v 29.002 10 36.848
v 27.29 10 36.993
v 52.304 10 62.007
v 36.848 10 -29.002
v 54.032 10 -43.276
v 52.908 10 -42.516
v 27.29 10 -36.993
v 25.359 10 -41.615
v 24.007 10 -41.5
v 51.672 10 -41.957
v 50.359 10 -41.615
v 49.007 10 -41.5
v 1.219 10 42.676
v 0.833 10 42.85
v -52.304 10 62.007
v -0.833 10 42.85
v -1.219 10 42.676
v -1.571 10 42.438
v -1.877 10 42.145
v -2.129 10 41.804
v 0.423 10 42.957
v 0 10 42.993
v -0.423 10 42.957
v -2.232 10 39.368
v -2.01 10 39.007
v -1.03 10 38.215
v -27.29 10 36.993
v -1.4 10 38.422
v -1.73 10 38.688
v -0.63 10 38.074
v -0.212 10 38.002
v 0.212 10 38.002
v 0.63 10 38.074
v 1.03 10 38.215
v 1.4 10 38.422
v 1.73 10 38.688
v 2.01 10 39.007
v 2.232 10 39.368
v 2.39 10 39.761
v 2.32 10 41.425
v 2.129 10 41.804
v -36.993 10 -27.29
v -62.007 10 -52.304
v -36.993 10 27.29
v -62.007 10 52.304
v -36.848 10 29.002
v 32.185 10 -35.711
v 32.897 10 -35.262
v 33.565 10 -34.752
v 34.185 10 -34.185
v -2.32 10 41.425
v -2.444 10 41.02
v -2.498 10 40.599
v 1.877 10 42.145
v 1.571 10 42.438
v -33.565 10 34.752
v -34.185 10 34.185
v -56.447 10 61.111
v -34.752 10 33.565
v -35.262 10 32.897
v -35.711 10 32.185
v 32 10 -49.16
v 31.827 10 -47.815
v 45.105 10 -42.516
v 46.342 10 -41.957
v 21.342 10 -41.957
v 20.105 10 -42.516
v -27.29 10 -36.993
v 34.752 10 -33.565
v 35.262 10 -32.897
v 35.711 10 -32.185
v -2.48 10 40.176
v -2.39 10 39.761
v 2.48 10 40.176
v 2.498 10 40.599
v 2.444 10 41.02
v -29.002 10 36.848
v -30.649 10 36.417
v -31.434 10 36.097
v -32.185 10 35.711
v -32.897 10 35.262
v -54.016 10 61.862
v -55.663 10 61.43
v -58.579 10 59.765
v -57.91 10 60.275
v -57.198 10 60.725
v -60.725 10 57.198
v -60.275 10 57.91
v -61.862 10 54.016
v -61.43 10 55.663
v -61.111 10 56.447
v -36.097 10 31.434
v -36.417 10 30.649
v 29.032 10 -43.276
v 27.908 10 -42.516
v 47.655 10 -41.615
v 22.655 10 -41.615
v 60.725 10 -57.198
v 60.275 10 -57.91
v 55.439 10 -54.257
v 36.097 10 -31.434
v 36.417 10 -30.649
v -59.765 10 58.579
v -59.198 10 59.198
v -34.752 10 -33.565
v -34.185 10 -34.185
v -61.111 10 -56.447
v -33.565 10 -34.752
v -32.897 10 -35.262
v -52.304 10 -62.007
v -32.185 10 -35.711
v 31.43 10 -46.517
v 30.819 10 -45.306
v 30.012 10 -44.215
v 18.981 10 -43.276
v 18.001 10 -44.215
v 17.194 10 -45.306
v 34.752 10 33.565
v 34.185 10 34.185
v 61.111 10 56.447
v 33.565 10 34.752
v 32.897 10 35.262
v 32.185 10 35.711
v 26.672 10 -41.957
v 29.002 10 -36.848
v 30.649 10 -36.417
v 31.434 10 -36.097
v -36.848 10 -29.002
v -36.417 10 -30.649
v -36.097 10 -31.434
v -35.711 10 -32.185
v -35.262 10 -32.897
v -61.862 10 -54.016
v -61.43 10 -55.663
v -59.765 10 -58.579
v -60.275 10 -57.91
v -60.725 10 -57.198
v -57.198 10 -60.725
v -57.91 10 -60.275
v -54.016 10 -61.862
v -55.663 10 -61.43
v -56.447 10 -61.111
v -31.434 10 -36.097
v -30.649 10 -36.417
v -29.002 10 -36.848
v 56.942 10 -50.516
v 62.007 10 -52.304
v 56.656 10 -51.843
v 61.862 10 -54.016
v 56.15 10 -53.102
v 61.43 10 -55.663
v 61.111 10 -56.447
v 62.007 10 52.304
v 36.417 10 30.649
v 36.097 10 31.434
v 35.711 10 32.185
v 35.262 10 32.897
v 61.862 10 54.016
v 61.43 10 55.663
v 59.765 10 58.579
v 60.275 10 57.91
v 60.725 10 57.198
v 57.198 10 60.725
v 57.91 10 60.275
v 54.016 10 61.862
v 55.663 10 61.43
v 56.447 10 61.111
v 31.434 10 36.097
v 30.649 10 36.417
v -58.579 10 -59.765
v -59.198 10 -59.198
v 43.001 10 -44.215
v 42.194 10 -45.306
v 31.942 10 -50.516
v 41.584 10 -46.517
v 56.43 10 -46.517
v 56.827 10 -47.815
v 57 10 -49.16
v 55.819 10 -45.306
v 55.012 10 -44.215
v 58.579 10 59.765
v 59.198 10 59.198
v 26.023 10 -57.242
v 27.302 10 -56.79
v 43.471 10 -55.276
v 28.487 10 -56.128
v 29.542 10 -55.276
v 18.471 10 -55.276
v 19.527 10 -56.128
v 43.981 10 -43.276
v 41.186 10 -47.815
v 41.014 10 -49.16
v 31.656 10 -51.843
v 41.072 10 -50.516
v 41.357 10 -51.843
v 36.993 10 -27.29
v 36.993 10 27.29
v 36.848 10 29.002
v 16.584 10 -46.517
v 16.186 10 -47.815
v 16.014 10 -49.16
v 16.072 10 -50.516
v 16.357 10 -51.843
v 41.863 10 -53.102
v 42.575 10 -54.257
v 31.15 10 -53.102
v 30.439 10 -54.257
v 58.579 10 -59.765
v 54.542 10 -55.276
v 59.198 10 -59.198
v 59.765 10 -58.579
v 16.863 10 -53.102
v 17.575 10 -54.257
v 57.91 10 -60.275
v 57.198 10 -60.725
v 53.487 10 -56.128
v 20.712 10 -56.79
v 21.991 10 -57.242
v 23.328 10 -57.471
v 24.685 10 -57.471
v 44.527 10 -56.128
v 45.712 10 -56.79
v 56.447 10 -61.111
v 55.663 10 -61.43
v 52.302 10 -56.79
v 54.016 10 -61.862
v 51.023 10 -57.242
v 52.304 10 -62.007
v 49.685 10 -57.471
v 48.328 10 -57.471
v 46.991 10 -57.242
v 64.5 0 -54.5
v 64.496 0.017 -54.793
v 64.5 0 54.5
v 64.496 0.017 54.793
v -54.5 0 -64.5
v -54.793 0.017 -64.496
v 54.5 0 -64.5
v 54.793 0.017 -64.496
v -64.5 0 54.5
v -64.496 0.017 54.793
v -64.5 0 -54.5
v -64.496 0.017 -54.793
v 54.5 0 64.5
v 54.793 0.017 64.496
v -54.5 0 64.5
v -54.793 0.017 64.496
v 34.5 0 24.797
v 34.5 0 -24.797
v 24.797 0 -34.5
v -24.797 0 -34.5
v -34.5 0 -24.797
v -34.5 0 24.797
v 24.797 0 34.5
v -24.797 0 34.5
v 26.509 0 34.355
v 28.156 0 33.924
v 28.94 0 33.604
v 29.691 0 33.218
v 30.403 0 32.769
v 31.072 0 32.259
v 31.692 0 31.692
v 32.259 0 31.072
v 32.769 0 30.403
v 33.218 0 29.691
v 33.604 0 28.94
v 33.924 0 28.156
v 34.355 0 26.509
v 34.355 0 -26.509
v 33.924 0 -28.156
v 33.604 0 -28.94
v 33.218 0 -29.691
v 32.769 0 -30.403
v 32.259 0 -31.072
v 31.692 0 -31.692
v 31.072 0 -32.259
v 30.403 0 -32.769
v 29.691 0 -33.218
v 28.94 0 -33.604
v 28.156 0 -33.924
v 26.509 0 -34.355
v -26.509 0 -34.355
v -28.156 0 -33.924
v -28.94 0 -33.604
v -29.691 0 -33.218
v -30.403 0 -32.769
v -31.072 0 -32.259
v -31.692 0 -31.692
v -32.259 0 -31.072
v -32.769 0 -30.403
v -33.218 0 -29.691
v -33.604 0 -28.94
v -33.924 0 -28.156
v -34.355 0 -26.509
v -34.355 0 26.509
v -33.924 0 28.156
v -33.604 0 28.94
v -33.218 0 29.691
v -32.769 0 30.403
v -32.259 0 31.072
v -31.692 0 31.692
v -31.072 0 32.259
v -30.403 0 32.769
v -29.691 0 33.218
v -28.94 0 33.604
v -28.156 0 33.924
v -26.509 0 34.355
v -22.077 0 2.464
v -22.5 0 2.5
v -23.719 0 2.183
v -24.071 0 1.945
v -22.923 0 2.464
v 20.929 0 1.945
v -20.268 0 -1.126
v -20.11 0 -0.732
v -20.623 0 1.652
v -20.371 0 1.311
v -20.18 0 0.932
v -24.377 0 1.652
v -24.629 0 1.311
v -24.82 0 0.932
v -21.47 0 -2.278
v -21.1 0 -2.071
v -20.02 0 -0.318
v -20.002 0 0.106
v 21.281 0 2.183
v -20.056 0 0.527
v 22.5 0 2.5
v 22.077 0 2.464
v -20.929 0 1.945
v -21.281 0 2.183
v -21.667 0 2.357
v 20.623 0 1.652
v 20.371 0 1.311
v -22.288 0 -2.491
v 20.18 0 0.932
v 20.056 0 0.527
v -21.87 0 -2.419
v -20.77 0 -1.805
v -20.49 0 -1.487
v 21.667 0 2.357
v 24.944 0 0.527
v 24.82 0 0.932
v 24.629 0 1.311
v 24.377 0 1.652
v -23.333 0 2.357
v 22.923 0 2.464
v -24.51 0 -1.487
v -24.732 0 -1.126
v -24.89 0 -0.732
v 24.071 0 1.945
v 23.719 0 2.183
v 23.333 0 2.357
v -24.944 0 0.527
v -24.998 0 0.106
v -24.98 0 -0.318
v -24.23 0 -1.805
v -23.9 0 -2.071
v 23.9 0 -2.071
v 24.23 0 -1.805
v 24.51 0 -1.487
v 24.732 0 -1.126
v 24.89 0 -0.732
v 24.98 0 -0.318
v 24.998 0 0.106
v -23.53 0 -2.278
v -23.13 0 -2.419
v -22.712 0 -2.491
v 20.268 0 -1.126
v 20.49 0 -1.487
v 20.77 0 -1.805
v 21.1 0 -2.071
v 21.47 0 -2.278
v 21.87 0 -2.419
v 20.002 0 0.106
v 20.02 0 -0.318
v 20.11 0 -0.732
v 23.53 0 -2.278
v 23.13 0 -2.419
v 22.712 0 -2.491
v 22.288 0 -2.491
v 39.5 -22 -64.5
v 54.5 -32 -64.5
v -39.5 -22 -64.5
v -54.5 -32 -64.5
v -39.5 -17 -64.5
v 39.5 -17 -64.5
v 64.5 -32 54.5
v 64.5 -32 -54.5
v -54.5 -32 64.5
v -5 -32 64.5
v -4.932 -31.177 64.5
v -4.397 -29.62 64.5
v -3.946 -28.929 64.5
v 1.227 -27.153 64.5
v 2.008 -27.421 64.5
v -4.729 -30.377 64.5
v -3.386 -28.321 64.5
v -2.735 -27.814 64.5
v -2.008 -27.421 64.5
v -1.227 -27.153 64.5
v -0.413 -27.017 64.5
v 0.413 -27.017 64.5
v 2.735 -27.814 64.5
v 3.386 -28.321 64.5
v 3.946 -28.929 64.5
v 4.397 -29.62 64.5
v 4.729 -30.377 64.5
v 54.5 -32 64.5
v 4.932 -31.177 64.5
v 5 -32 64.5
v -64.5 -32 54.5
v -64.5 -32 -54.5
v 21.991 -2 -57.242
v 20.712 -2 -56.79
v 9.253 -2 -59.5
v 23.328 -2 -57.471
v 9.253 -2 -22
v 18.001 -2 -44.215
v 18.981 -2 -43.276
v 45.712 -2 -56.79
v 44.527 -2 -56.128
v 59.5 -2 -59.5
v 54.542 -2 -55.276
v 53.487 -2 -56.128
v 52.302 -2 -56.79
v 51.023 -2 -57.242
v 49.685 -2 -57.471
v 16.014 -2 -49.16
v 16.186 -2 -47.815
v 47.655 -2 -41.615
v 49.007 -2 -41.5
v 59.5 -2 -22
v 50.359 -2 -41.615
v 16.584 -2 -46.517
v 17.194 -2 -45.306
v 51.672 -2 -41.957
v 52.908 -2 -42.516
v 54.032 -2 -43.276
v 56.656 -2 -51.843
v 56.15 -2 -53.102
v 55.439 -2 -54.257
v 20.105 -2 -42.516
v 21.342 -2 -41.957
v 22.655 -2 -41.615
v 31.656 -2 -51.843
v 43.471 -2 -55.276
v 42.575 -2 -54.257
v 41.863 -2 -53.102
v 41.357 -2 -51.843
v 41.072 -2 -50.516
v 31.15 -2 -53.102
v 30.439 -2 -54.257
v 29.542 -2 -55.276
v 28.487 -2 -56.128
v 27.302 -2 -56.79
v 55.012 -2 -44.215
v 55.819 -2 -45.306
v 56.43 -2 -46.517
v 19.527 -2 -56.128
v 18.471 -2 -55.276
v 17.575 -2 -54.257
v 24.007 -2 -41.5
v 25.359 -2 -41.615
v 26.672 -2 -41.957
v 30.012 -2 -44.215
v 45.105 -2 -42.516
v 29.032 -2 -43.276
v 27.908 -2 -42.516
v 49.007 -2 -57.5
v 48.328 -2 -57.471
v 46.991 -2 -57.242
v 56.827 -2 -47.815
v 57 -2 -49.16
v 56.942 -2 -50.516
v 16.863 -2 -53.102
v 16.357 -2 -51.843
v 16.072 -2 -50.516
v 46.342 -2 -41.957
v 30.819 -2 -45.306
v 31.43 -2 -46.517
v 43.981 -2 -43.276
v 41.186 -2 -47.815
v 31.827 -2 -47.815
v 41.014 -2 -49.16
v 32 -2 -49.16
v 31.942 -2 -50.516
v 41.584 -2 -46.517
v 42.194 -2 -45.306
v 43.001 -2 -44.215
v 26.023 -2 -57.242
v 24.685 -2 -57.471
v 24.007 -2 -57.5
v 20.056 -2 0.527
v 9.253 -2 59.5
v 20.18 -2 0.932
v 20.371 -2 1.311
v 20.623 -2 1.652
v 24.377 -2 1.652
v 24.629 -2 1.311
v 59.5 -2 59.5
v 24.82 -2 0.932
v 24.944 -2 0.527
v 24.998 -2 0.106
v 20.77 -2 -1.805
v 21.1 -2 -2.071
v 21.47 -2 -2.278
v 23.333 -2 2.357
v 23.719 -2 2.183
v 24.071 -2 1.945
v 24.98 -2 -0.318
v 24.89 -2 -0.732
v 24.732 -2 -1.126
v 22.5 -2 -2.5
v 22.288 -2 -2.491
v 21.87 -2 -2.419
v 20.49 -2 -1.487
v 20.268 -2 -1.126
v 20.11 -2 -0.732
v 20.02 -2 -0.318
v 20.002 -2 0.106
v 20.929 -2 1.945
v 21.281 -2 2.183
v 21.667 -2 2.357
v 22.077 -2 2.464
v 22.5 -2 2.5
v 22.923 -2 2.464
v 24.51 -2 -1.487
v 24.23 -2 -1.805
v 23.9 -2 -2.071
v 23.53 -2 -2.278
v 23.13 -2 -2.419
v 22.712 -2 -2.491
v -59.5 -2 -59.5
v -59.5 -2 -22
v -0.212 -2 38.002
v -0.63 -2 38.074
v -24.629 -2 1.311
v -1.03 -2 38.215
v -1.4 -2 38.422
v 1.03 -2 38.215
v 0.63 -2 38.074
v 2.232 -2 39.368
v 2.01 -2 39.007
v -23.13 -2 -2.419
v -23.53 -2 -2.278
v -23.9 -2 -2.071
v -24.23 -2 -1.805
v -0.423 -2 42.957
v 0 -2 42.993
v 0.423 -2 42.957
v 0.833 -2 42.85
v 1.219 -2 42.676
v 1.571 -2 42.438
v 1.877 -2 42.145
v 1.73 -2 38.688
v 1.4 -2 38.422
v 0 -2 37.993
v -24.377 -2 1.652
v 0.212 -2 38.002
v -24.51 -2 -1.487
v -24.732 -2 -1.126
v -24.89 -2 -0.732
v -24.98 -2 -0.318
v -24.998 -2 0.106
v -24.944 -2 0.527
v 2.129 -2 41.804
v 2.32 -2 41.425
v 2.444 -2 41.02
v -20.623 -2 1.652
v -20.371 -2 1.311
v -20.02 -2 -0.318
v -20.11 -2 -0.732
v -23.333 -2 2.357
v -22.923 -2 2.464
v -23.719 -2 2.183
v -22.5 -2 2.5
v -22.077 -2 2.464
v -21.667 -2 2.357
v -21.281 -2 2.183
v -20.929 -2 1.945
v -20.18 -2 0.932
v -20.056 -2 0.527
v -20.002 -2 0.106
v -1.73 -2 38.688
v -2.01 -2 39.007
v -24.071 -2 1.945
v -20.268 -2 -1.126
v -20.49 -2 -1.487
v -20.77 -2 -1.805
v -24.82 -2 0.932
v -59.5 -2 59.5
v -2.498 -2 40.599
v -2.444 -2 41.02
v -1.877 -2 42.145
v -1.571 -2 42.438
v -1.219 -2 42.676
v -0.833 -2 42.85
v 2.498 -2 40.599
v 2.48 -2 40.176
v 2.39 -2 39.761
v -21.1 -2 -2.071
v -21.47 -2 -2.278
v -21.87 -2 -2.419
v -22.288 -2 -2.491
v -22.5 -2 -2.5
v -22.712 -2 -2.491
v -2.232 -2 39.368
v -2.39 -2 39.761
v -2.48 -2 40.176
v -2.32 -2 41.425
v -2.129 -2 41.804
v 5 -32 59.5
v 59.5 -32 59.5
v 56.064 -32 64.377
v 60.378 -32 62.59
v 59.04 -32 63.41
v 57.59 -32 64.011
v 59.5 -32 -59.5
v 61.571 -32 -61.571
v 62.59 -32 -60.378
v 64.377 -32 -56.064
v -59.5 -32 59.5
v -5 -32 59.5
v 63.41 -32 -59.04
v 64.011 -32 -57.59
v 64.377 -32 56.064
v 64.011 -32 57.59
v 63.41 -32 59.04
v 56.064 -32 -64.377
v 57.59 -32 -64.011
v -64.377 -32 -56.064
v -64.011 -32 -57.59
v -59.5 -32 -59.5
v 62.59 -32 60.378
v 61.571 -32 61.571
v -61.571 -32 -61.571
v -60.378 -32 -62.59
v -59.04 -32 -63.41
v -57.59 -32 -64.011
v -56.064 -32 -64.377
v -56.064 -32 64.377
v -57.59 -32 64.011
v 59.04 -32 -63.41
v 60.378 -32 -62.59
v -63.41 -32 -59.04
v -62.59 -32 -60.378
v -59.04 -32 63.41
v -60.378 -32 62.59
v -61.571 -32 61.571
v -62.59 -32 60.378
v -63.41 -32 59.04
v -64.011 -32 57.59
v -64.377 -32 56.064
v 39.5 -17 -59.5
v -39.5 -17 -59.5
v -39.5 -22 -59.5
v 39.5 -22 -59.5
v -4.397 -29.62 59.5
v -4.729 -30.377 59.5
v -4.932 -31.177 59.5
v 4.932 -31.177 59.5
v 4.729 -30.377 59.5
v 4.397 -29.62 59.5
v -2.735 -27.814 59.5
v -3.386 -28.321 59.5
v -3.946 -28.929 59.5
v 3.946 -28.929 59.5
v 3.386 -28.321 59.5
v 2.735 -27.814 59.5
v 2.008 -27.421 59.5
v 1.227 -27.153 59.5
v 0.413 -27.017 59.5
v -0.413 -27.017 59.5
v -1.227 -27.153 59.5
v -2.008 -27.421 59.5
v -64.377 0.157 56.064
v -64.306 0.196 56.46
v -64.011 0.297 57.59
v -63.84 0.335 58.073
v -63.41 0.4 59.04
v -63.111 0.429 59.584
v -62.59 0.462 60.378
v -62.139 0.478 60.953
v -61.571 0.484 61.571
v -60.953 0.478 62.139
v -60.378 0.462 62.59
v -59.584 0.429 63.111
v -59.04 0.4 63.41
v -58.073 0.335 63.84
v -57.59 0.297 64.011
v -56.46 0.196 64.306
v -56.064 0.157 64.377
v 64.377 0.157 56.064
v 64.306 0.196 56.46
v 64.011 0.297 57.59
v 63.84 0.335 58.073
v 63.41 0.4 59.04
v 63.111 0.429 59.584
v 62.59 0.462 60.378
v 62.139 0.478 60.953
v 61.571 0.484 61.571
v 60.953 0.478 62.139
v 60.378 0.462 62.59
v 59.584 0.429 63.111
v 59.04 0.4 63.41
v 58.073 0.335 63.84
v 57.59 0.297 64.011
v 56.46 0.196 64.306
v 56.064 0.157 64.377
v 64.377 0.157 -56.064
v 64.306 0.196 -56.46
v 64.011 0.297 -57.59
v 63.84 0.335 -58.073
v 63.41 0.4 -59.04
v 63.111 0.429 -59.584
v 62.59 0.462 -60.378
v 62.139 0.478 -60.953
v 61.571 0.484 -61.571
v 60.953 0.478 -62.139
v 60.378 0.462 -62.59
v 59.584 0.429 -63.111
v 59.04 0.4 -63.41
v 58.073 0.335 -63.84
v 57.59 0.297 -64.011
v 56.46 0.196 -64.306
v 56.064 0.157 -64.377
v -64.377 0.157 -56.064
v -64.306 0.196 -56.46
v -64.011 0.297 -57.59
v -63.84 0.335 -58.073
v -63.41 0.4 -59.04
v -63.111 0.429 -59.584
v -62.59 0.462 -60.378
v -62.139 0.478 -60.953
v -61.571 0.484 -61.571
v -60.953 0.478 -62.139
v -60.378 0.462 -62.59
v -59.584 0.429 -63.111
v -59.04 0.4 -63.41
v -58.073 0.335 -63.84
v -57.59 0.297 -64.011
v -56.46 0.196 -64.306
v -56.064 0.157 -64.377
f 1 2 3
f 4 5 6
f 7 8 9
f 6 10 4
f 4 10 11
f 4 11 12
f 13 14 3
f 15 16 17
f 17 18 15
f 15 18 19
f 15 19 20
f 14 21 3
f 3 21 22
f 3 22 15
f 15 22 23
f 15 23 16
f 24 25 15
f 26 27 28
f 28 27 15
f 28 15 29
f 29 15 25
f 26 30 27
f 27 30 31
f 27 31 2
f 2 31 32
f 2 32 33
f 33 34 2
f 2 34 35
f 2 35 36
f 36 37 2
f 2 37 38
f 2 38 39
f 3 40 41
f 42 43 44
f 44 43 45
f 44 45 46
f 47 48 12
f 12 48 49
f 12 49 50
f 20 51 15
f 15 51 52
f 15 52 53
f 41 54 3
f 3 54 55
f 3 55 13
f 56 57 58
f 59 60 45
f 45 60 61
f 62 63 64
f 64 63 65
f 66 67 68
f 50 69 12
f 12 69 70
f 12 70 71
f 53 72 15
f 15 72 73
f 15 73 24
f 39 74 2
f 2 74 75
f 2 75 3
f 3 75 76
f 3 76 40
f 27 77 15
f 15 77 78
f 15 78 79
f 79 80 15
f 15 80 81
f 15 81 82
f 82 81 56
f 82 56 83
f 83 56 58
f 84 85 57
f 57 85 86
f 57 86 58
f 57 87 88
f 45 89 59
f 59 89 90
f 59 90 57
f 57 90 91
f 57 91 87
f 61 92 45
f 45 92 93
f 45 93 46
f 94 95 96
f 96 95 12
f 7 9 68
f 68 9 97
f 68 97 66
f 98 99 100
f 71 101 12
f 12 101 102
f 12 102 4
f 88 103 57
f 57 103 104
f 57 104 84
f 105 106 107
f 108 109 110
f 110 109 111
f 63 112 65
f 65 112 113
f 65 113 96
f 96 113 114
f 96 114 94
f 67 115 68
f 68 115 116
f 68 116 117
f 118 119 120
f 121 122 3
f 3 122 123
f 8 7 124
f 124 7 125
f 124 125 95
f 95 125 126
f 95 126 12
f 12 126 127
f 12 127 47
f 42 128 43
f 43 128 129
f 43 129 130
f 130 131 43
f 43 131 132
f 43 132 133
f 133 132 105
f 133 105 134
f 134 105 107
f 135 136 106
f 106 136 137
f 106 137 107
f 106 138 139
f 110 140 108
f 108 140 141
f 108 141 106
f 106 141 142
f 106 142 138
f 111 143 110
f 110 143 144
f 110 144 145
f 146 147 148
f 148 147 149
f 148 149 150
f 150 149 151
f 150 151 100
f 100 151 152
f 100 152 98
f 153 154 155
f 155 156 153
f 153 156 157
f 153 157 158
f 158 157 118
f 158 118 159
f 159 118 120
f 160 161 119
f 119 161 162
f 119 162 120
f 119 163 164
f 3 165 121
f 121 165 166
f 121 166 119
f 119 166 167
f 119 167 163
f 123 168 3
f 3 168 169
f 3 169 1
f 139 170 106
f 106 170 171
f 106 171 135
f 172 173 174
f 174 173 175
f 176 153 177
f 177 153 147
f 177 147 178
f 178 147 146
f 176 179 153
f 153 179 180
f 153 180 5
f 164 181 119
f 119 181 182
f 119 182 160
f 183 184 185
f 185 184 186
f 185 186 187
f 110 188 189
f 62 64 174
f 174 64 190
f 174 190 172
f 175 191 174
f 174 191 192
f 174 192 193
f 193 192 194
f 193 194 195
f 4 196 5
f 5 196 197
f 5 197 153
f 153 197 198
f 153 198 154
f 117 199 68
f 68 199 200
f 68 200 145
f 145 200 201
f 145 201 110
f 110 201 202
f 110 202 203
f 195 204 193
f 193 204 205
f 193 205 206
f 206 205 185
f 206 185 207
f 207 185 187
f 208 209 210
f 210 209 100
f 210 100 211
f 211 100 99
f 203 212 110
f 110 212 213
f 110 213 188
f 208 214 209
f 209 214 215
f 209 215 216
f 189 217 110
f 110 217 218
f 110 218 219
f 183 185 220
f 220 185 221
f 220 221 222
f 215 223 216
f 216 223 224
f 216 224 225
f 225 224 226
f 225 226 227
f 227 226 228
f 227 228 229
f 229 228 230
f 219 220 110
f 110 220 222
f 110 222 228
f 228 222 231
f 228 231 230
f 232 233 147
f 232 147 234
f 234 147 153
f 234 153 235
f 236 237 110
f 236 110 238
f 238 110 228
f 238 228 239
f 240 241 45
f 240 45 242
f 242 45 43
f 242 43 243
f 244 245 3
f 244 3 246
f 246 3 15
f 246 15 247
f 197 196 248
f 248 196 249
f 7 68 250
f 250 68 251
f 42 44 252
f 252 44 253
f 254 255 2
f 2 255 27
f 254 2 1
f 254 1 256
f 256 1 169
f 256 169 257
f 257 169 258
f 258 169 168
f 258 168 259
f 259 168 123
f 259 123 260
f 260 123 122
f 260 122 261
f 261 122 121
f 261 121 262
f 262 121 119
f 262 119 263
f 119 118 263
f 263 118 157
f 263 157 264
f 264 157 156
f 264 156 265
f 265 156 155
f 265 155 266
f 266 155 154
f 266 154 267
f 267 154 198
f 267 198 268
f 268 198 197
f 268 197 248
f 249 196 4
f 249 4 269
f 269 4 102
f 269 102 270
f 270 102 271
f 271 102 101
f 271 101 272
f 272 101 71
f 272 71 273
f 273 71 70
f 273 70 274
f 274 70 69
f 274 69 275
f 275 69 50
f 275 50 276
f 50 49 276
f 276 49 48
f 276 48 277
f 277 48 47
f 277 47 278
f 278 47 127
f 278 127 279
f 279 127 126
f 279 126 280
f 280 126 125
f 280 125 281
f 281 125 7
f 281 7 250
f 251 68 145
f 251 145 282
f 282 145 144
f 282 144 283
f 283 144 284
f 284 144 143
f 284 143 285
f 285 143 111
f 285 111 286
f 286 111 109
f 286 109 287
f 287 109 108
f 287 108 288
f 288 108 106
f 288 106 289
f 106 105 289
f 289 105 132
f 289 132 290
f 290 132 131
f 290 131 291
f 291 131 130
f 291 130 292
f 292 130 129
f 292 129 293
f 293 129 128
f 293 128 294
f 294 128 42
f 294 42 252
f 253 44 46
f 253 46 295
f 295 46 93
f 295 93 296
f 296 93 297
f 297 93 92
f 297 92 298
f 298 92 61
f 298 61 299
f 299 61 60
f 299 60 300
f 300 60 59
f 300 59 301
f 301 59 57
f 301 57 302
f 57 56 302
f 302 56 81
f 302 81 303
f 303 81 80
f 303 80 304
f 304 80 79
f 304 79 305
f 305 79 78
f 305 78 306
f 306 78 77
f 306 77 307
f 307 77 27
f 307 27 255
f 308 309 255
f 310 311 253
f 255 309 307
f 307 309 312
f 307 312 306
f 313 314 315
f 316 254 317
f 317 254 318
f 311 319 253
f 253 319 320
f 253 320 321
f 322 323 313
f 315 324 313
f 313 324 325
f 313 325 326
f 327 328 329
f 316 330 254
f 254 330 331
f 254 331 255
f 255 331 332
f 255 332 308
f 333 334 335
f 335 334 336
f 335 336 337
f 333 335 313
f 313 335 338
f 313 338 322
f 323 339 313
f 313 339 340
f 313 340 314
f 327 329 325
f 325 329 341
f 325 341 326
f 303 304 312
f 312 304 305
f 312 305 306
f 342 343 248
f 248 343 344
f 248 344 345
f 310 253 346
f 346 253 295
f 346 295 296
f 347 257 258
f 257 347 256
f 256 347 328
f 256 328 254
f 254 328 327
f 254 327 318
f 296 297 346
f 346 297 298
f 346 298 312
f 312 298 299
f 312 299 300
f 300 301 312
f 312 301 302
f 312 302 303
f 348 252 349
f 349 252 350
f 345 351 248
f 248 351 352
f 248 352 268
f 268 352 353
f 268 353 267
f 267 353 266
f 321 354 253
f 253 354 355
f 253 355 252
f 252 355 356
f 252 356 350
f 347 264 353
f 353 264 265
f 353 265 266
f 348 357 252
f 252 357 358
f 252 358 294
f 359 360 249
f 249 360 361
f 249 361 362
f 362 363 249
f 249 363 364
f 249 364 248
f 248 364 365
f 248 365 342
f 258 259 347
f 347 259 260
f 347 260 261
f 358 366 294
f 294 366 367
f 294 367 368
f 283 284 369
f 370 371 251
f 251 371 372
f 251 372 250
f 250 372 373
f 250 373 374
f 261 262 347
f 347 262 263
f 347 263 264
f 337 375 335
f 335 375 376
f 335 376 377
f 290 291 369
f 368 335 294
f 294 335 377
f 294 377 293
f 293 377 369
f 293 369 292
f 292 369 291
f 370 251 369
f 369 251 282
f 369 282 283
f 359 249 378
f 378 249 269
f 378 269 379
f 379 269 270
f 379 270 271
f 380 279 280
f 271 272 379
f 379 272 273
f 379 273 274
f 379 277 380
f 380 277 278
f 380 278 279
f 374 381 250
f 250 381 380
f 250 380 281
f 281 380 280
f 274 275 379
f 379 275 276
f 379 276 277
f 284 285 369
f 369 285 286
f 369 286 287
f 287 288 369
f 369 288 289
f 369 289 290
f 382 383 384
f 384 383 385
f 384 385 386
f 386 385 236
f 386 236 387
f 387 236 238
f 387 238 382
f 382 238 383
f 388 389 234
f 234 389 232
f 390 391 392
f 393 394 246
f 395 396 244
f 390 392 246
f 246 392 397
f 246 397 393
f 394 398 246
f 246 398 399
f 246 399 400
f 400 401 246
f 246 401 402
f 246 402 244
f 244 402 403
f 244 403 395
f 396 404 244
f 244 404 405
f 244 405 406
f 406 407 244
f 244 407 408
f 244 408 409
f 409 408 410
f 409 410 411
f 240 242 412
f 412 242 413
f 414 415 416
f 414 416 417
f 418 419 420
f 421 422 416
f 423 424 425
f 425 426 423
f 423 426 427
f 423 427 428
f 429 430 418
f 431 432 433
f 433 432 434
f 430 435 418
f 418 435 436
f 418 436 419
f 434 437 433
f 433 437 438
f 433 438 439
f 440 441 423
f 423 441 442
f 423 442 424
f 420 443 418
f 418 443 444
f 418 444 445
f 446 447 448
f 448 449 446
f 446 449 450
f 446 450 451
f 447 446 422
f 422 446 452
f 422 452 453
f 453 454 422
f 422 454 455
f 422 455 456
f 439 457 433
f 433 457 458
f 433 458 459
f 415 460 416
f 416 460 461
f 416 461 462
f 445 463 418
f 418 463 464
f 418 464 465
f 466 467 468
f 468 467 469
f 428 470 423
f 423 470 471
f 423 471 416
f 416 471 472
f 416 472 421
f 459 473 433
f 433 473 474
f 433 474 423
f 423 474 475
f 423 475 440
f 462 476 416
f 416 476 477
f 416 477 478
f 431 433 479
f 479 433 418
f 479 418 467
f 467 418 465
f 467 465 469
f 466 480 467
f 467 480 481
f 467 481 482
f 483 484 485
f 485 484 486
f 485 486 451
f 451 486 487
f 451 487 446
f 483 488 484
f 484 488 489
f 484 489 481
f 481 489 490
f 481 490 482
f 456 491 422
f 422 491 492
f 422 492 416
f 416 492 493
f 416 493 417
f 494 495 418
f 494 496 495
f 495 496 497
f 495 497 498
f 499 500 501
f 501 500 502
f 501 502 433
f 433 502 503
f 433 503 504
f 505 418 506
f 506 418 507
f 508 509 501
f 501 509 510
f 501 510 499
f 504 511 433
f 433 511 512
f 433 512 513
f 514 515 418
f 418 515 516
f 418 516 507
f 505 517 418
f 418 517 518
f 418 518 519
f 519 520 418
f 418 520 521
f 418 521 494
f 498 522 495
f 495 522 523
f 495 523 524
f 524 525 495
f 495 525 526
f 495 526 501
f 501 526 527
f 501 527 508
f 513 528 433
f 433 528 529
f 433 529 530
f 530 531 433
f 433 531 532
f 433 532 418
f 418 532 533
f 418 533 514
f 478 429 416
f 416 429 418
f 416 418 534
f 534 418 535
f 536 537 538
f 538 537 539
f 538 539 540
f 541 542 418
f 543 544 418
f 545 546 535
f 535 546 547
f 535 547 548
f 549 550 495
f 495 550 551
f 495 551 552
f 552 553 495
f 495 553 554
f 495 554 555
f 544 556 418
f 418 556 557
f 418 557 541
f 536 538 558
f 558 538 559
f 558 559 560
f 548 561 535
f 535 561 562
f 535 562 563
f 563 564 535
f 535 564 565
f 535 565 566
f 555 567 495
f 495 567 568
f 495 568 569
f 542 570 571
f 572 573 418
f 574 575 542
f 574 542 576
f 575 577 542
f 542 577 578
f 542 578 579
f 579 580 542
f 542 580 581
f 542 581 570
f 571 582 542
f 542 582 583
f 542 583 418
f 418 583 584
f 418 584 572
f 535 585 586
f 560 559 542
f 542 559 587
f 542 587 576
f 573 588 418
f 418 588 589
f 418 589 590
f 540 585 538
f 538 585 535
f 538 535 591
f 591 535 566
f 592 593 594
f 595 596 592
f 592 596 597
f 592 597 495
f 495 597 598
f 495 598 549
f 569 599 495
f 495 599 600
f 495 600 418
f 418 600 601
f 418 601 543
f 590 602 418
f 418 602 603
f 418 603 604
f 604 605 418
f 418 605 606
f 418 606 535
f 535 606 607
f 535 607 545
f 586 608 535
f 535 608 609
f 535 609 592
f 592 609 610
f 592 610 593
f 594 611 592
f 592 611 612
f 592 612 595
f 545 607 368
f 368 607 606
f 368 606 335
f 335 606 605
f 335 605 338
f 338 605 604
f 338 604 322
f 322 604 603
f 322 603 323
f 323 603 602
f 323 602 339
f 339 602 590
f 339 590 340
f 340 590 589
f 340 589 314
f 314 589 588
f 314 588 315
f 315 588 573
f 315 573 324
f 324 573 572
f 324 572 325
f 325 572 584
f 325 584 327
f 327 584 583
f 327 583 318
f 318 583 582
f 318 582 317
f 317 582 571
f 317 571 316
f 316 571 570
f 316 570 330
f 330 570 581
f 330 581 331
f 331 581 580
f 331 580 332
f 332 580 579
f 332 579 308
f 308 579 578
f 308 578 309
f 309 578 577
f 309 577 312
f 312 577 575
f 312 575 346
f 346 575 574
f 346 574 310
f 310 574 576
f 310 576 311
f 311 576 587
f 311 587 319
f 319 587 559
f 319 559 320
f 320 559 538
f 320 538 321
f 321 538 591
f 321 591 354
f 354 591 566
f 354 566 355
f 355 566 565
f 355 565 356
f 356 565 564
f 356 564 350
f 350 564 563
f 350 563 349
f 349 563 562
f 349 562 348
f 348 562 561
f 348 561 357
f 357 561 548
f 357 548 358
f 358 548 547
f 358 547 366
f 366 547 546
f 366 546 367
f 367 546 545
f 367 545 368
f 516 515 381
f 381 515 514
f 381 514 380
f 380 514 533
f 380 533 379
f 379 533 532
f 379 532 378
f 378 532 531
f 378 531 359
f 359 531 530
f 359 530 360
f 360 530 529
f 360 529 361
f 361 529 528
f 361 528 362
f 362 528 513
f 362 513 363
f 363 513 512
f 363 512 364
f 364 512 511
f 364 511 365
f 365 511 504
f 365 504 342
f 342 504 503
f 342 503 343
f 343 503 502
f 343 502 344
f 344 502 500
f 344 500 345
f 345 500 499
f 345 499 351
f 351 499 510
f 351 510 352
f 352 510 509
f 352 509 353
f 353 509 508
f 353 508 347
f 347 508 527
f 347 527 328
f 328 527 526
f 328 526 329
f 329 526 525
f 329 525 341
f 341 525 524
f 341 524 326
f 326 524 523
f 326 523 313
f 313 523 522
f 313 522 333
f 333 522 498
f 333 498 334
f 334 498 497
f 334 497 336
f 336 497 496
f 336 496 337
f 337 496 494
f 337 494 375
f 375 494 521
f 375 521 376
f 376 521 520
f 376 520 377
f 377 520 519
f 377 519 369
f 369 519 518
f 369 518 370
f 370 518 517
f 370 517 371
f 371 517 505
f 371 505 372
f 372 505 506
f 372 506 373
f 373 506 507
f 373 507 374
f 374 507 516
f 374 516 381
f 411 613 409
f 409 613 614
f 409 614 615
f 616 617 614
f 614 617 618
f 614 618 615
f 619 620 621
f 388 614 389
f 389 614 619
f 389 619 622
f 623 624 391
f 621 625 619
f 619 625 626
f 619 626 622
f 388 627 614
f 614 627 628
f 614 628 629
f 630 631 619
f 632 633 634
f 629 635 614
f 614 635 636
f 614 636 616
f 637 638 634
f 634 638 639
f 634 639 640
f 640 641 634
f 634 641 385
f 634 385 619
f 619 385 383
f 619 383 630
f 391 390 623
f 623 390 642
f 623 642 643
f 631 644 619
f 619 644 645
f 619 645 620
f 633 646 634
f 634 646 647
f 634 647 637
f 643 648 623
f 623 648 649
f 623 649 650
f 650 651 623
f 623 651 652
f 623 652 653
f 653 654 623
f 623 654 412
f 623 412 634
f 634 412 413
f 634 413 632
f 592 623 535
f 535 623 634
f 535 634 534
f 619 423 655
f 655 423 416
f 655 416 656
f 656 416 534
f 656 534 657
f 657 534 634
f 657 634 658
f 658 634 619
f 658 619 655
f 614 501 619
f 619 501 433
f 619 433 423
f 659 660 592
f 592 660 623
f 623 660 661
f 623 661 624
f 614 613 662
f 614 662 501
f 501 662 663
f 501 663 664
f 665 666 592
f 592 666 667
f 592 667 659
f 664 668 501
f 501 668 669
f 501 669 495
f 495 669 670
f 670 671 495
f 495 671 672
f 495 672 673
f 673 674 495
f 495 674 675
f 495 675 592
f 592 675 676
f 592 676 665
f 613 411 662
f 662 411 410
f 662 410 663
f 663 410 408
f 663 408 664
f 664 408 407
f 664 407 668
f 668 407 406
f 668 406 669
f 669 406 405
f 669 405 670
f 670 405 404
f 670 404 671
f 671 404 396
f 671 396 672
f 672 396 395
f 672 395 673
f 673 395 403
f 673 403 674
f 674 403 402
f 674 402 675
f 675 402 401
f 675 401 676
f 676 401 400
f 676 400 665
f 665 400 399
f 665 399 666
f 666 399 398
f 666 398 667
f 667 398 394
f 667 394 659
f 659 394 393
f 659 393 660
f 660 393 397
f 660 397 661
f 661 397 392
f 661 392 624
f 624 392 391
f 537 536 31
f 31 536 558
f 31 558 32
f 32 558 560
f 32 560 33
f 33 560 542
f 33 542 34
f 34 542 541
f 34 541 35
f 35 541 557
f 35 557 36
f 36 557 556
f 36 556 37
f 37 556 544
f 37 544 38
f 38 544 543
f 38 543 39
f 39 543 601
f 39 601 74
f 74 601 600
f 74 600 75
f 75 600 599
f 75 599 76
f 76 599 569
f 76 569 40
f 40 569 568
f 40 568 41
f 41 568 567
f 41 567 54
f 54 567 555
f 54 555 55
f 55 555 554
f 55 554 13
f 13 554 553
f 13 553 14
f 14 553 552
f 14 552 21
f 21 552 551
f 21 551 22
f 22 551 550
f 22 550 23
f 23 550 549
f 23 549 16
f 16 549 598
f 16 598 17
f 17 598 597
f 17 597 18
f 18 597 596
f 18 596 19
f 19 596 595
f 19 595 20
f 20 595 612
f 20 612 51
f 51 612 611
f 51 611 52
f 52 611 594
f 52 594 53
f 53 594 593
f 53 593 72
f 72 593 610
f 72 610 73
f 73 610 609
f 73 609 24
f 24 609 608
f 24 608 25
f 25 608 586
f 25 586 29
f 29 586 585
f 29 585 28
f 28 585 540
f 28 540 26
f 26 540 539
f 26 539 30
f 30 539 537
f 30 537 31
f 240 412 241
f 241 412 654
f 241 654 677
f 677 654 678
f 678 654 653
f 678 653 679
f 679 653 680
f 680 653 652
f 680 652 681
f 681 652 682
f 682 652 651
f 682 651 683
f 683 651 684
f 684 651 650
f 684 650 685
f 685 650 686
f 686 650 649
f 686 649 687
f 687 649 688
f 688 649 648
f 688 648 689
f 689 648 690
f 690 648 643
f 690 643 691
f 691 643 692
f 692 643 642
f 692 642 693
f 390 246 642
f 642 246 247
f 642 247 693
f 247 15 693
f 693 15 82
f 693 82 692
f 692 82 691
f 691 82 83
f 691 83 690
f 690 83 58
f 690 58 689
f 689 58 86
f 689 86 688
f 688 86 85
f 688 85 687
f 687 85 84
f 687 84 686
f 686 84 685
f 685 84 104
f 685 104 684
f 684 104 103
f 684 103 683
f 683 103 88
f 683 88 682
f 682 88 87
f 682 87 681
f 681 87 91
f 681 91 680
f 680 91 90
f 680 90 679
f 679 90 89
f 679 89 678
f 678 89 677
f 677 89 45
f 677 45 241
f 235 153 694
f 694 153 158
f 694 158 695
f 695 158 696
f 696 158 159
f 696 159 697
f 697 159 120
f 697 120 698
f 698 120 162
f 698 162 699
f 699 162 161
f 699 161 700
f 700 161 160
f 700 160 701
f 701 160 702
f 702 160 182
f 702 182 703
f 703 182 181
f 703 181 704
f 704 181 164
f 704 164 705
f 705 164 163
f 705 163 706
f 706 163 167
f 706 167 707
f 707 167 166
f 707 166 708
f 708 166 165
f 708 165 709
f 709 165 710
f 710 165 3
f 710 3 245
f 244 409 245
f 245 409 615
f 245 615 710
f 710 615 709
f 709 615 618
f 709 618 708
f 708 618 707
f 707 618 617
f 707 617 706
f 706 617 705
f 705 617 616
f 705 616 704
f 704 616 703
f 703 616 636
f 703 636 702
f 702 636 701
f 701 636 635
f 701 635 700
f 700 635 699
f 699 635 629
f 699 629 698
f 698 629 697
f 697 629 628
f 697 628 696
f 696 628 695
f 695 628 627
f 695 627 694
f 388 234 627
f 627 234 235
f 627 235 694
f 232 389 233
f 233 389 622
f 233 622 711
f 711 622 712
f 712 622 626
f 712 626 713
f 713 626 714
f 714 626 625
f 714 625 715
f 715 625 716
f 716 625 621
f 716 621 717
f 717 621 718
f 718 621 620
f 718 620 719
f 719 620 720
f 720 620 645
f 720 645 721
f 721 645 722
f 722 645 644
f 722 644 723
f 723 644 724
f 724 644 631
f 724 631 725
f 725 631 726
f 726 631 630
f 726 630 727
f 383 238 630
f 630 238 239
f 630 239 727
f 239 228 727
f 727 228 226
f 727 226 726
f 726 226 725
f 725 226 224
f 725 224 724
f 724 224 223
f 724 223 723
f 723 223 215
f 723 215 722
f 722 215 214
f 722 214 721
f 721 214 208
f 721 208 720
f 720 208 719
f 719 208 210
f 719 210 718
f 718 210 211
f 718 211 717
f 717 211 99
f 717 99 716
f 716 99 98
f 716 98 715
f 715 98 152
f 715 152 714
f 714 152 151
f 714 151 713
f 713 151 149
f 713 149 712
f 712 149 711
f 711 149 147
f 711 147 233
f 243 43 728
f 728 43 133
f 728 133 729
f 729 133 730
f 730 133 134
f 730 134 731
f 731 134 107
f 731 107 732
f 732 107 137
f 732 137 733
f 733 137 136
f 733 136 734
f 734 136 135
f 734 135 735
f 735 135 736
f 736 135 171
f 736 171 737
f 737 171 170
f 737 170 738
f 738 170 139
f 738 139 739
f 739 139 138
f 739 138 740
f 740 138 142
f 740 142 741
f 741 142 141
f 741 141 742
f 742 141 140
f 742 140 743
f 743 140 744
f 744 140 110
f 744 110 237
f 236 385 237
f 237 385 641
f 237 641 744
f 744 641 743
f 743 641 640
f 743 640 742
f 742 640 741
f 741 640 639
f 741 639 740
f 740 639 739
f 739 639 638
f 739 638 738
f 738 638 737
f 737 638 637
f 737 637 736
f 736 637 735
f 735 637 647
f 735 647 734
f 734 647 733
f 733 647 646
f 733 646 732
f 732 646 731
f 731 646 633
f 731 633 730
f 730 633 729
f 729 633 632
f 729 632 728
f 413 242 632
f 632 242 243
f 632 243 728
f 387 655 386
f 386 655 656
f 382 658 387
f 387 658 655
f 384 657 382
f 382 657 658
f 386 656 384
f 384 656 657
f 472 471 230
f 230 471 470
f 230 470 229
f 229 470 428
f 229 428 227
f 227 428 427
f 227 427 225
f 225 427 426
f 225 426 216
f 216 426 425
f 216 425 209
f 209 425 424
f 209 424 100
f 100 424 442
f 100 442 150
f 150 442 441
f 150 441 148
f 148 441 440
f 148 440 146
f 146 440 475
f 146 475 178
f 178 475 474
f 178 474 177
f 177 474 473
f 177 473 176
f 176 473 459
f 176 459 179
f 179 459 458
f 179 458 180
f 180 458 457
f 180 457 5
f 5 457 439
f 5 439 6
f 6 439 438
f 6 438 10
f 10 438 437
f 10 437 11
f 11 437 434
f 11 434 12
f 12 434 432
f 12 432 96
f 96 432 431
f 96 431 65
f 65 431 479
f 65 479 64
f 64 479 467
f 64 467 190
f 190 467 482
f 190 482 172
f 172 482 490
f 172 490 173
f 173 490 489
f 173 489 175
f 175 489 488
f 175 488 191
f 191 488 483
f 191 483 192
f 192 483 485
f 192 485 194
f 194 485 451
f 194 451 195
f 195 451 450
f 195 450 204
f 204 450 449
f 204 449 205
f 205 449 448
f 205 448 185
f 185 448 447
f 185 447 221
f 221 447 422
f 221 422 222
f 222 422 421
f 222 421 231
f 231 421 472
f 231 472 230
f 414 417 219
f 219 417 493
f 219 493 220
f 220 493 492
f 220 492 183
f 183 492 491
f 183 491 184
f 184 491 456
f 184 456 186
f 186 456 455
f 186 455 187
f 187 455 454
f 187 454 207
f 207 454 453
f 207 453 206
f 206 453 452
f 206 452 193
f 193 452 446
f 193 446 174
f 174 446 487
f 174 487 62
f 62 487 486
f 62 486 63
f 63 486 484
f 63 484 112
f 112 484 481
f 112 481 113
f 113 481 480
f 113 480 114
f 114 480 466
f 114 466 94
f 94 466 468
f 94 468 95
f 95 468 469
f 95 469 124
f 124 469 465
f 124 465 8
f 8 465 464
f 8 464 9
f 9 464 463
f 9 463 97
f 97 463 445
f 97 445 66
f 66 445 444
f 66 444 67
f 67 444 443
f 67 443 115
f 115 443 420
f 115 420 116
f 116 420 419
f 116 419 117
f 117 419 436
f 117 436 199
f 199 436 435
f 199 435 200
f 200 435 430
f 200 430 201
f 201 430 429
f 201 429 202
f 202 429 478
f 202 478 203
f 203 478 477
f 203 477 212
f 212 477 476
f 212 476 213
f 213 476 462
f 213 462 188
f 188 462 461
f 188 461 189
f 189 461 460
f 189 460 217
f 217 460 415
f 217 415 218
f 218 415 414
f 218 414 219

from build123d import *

# Parameters (mm, degrees)
SKETCH1_W           = 129
SKETCH1_H           = 129
SKETCH1_W_2         = 69
SKETCH1_H_2         = 69
EXTRUDE_THIN1_DEPTH = 10
EXTRUDE_THIN1_DRAFT = 14
FILLET1_R           = 10
SKETCH3_W           = 129
SKETCH3_H           = 129
BOSS_EXTRUDE1_DEPTH = 2
SKETCH4_R           = 2.5
CUT_EXTRUDE1_DEPTH  = 2
SKETCH5_W           = 129
SKETCH5_H           = 129
SKETCH5_W_2         = 119
SKETCH5_H_2         = 119
EXTRUDE_THIN2_DEPTH = 30
CUT_EXTRUDE2_DEPTH  = 5
SKETCH7_R           = 2.5
CUT_EXTRUDE3_DEPTH  = 12
FILLET2_R           = 10
SKETCH8_W           = 79
SKETCH8_H           = 5
CUT_EXTRUDE4_DEPTH  = 5
SKETCH9_R           = 8
CUT_EXTRUDE5_DEPTH  = 12
SKETCH9_3_R         = 8
CUT_EXTRUDE6_DEPTH  = 12


with BuildPart() as part:
    # Sketch1 → Extrude-Thin1 (with draft: the straight prism first)
    with BuildSketch(Plane(origin=(0, 0, 0), x_dir=(1, 0, 0), z_dir=(0, 1, 0))):
        Rectangle(SKETCH1_W, SKETCH1_H)
        Rectangle(SKETCH1_W_2, SKETCH1_H_2, mode=Mode.SUBTRACT)
    extrude(amount=EXTRUDE_THIN1_DEPTH)
    # Extrude-Thin1: the draft: its side faces are tilted about the plane it starts from
    extrude_thin1_sides = [part.faces().sort_by_distance(p)[0] for p in [
        (0, 5, -64.5),
        (-64.5, 5, 0),
        (0, 5, 64.5),
        (64.5, 5, 0),
        (34.5, 5, 0),
        (0, 5, 34.5),
        (-34.5, 5, 0),
        (0, 5, -34.5),
    ]]
    draft(extrude_thin1_sides, Plane(origin=(0, 0, 0), x_dir=(1, 0, 0), z_dir=(0, 1, 0)), EXTRUDE_THIN1_DRAFT)

    # Fillet1
    fillet1_edges = [part.edges().sort_by_distance(p)[0] for p in [
        (35.746640014, 5, 35.746640014),
        (35.746640014, 5, -35.746640014),
        (-35.746640014, 5, -35.746640014),
        (-35.746640014, 5, 35.746640014),
    ]]
    fillet(fillet1_edges, radius=FILLET1_R)

    # Sketch3 → Boss-Extrude1 (add)
    with BuildSketch(Plane.XZ):
        Rectangle(SKETCH3_W, SKETCH3_H)
    extrude(amount=BOSS_EXTRUDE1_DEPTH)

    # Sketch4 → Cut-Extrude1 (cut)
    with BuildSketch(Plane(origin=(0, 0, 0), x_dir=(1, 0, 0), z_dir=(0, 1, 0))):
        with Locations(Location((-22.5, 0, 0), (0, 0, 270))):
            Circle(SKETCH4_R)
    cut_extrude1 = extrude(amount=-CUT_EXTRUDE1_DEPTH, mode=Mode.SUBTRACT)

    # Mirror1: Cut-Extrude1 across plane
    add(cut_extrude1.mirror(Plane(origin=(0, 0, 0), x_dir=(0, 0, 1), z_dir=(1, 0, 0))), mode=Mode.SUBTRACT)

    # Sketch5 → Extrude-Thin2 (add)
    with BuildSketch(Plane.XZ.offset(2)):
        Rectangle(SKETCH5_W, SKETCH5_H)
        Rectangle(SKETCH5_W_2, SKETCH5_H_2, mode=Mode.SUBTRACT)
    extrude(amount=EXTRUDE_THIN2_DEPTH)

    # Sketch6 → Cut-Extrude2 (cut)
    with BuildSketch(Plane.XY.offset(64.5)):
        with BuildLine():
            Line((-5, -32), (5, -32))
            ThreePointArc((5, -32), (0, -27), (-5, -32))
        make_face()
    extrude(amount=-CUT_EXTRUDE2_DEPTH, mode=Mode.SUBTRACT)

    # Sketch7 → Cut-Extrude3 (cut)
    with BuildSketch(Plane(origin=(0, 10, 0), x_dir=(1, 0, 0), z_dir=(0, 1, 0))):
        with Locations(Location((0, -40.493280028, 0), (0, 0, 270))):
            Circle(SKETCH7_R)
    extrude(amount=-CUT_EXTRUDE3_DEPTH, mode=Mode.SUBTRACT)

    # Fillet2
    # the kernel refuses this fillet: 10 mm, written as the material it takes off along each edge
    with BuildSketch(Plane(origin=(-64.5, -57, -64.5), x_dir=(1, 0, 0), z_dir=(0, 1, 0)), Plane(origin=(64.5, 25, -64.5), x_dir=(-1, 0, 0), z_dir=(0, -1, 0)), Plane(origin=(-64.5, -57, 64.5), x_dir=(0, 0, -1), z_dir=(0, 1, 0))) as fillet2_piece_1:
        with BuildLine():
            CenterArc((FILLET2_R, -FILLET2_R), FILLET2_R, 90, 90)
            Line((0, -FILLET2_R), (0, 0))
            Line((0, 0), (FILLET2_R, 0))
        make_face()
    extrude(amount=82, mode=Mode.SUBTRACT)
    with BuildSketch(Plane(origin=(64.5, -57, 64.5), x_dir=(0, 0, -1), z_dir=(0, 1, 0))) as fillet2_piece_2:
        with BuildLine():
            CenterArc((FILLET2_R, FILLET2_R), FILLET2_R, 180, 90)
            Line((0, FILLET2_R), (0, 0))
            Line((0, 0), (FILLET2_R, 0))
        make_face()
    extrude(amount=82, mode=Mode.SUBTRACT)
    with BuildSketch(Plane(origin=(70.043929395, -22.235486312, 70.043929395), x_dir=(0.05688523373566075, -0.22815421086671833, -0.9719617925858115), z_dir=(-0.23513883931281052, 0.9430903734495696, -0.23513883931281052)), Plane(origin=(70.043929395, -22.235486312, -70.043929395), x_dir=(-0.9719617925858115, -0.22815421086671833, -0.05688523373566075), z_dir=(-0.23513883931281052, 0.9430903734495696, 0.23513883931281052))) as fillet2_piece_3:
        with BuildLine():
            CenterArc((FILLET2_R * 0.94309037345, FILLET2_R), FILLET2_R, 183.355221767, 86.644778233)
            Line((-FILLET2_R * 0.0551954991819, FILLET2_R * 0.941473796429), (0, 0))
            Line((0, 0), (FILLET2_R * 0.94309037345, 0))
        make_face()
    extrude(amount=57.757956351, mode=Mode.SUBTRACT)
    with BuildSketch(Plane(origin=(-70.043929395, -22.235486312, 70.043929395), x_dir=(-0.05688523373566065, -0.22815421086671833, -0.9719617925858115), z_dir=(0.23513883931281052, 0.9430903734495696, -0.23513883931281052)), Plane(origin=(-70.043929395, -22.235486312, -70.043929395), x_dir=(0.9719617925858115, -0.22815421086671833, -0.05688523373566065), z_dir=(0.23513883931281052, 0.9430903734495696, 0.23513883931281052))) as fillet2_piece_4:
        with BuildLine():
            CenterArc((FILLET2_R * 0.94309037345, -FILLET2_R), FILLET2_R, 90, 86.644778233)
            Line((-FILLET2_R * 0.0551954991819, -FILLET2_R * 0.941473796429), (0, 0))
            Line((0, 0), (FILLET2_R * 0.94309037345, 0))
        make_face()
    extrude(amount=57.757956351, mode=Mode.SUBTRACT)

    # Sketch8 → Cut-Extrude4 (cut)
    with BuildSketch(Plane(origin=(0, 0, -64.5), x_dir=(-1, 0, 0), z_dir=(0, 0, -1))):
        with Locations((0, -19.5)):
            Rectangle(SKETCH8_W, SKETCH8_H)
    extrude(amount=-CUT_EXTRUDE4_DEPTH, mode=Mode.SUBTRACT)

    # Sketch9 → Cut-Extrude5 (cut)
    with BuildSketch(Plane(origin=(0, 10, 0), x_dir=(1, 0, 0), z_dir=(0, 1, 0))):
        with Locations(Location((49.006719972, 49.5, 0), (0, 0, 270))):
            Circle(SKETCH9_R)
    extrude(amount=-CUT_EXTRUDE5_DEPTH, mode=Mode.SUBTRACT)

    # Sketch9<3> → Cut-Extrude6 (cut)
    with BuildSketch(Plane(origin=(0, 10, 0), x_dir=(1, 0, 0), z_dir=(0, 1, 0))):
        with Locations(Location((49.006719972, 49.5, 0), (0, 0, 270))):
            Circle(SKETCH9_3_R)
        with Locations(Location((24.006719972, 49.5, 0), (0, 0, 270))):
            Circle(SKETCH9_3_R)
    extrude(amount=-CUT_EXTRUDE6_DEPTH, mode=Mode.SUBTRACT)


solid = part.part
